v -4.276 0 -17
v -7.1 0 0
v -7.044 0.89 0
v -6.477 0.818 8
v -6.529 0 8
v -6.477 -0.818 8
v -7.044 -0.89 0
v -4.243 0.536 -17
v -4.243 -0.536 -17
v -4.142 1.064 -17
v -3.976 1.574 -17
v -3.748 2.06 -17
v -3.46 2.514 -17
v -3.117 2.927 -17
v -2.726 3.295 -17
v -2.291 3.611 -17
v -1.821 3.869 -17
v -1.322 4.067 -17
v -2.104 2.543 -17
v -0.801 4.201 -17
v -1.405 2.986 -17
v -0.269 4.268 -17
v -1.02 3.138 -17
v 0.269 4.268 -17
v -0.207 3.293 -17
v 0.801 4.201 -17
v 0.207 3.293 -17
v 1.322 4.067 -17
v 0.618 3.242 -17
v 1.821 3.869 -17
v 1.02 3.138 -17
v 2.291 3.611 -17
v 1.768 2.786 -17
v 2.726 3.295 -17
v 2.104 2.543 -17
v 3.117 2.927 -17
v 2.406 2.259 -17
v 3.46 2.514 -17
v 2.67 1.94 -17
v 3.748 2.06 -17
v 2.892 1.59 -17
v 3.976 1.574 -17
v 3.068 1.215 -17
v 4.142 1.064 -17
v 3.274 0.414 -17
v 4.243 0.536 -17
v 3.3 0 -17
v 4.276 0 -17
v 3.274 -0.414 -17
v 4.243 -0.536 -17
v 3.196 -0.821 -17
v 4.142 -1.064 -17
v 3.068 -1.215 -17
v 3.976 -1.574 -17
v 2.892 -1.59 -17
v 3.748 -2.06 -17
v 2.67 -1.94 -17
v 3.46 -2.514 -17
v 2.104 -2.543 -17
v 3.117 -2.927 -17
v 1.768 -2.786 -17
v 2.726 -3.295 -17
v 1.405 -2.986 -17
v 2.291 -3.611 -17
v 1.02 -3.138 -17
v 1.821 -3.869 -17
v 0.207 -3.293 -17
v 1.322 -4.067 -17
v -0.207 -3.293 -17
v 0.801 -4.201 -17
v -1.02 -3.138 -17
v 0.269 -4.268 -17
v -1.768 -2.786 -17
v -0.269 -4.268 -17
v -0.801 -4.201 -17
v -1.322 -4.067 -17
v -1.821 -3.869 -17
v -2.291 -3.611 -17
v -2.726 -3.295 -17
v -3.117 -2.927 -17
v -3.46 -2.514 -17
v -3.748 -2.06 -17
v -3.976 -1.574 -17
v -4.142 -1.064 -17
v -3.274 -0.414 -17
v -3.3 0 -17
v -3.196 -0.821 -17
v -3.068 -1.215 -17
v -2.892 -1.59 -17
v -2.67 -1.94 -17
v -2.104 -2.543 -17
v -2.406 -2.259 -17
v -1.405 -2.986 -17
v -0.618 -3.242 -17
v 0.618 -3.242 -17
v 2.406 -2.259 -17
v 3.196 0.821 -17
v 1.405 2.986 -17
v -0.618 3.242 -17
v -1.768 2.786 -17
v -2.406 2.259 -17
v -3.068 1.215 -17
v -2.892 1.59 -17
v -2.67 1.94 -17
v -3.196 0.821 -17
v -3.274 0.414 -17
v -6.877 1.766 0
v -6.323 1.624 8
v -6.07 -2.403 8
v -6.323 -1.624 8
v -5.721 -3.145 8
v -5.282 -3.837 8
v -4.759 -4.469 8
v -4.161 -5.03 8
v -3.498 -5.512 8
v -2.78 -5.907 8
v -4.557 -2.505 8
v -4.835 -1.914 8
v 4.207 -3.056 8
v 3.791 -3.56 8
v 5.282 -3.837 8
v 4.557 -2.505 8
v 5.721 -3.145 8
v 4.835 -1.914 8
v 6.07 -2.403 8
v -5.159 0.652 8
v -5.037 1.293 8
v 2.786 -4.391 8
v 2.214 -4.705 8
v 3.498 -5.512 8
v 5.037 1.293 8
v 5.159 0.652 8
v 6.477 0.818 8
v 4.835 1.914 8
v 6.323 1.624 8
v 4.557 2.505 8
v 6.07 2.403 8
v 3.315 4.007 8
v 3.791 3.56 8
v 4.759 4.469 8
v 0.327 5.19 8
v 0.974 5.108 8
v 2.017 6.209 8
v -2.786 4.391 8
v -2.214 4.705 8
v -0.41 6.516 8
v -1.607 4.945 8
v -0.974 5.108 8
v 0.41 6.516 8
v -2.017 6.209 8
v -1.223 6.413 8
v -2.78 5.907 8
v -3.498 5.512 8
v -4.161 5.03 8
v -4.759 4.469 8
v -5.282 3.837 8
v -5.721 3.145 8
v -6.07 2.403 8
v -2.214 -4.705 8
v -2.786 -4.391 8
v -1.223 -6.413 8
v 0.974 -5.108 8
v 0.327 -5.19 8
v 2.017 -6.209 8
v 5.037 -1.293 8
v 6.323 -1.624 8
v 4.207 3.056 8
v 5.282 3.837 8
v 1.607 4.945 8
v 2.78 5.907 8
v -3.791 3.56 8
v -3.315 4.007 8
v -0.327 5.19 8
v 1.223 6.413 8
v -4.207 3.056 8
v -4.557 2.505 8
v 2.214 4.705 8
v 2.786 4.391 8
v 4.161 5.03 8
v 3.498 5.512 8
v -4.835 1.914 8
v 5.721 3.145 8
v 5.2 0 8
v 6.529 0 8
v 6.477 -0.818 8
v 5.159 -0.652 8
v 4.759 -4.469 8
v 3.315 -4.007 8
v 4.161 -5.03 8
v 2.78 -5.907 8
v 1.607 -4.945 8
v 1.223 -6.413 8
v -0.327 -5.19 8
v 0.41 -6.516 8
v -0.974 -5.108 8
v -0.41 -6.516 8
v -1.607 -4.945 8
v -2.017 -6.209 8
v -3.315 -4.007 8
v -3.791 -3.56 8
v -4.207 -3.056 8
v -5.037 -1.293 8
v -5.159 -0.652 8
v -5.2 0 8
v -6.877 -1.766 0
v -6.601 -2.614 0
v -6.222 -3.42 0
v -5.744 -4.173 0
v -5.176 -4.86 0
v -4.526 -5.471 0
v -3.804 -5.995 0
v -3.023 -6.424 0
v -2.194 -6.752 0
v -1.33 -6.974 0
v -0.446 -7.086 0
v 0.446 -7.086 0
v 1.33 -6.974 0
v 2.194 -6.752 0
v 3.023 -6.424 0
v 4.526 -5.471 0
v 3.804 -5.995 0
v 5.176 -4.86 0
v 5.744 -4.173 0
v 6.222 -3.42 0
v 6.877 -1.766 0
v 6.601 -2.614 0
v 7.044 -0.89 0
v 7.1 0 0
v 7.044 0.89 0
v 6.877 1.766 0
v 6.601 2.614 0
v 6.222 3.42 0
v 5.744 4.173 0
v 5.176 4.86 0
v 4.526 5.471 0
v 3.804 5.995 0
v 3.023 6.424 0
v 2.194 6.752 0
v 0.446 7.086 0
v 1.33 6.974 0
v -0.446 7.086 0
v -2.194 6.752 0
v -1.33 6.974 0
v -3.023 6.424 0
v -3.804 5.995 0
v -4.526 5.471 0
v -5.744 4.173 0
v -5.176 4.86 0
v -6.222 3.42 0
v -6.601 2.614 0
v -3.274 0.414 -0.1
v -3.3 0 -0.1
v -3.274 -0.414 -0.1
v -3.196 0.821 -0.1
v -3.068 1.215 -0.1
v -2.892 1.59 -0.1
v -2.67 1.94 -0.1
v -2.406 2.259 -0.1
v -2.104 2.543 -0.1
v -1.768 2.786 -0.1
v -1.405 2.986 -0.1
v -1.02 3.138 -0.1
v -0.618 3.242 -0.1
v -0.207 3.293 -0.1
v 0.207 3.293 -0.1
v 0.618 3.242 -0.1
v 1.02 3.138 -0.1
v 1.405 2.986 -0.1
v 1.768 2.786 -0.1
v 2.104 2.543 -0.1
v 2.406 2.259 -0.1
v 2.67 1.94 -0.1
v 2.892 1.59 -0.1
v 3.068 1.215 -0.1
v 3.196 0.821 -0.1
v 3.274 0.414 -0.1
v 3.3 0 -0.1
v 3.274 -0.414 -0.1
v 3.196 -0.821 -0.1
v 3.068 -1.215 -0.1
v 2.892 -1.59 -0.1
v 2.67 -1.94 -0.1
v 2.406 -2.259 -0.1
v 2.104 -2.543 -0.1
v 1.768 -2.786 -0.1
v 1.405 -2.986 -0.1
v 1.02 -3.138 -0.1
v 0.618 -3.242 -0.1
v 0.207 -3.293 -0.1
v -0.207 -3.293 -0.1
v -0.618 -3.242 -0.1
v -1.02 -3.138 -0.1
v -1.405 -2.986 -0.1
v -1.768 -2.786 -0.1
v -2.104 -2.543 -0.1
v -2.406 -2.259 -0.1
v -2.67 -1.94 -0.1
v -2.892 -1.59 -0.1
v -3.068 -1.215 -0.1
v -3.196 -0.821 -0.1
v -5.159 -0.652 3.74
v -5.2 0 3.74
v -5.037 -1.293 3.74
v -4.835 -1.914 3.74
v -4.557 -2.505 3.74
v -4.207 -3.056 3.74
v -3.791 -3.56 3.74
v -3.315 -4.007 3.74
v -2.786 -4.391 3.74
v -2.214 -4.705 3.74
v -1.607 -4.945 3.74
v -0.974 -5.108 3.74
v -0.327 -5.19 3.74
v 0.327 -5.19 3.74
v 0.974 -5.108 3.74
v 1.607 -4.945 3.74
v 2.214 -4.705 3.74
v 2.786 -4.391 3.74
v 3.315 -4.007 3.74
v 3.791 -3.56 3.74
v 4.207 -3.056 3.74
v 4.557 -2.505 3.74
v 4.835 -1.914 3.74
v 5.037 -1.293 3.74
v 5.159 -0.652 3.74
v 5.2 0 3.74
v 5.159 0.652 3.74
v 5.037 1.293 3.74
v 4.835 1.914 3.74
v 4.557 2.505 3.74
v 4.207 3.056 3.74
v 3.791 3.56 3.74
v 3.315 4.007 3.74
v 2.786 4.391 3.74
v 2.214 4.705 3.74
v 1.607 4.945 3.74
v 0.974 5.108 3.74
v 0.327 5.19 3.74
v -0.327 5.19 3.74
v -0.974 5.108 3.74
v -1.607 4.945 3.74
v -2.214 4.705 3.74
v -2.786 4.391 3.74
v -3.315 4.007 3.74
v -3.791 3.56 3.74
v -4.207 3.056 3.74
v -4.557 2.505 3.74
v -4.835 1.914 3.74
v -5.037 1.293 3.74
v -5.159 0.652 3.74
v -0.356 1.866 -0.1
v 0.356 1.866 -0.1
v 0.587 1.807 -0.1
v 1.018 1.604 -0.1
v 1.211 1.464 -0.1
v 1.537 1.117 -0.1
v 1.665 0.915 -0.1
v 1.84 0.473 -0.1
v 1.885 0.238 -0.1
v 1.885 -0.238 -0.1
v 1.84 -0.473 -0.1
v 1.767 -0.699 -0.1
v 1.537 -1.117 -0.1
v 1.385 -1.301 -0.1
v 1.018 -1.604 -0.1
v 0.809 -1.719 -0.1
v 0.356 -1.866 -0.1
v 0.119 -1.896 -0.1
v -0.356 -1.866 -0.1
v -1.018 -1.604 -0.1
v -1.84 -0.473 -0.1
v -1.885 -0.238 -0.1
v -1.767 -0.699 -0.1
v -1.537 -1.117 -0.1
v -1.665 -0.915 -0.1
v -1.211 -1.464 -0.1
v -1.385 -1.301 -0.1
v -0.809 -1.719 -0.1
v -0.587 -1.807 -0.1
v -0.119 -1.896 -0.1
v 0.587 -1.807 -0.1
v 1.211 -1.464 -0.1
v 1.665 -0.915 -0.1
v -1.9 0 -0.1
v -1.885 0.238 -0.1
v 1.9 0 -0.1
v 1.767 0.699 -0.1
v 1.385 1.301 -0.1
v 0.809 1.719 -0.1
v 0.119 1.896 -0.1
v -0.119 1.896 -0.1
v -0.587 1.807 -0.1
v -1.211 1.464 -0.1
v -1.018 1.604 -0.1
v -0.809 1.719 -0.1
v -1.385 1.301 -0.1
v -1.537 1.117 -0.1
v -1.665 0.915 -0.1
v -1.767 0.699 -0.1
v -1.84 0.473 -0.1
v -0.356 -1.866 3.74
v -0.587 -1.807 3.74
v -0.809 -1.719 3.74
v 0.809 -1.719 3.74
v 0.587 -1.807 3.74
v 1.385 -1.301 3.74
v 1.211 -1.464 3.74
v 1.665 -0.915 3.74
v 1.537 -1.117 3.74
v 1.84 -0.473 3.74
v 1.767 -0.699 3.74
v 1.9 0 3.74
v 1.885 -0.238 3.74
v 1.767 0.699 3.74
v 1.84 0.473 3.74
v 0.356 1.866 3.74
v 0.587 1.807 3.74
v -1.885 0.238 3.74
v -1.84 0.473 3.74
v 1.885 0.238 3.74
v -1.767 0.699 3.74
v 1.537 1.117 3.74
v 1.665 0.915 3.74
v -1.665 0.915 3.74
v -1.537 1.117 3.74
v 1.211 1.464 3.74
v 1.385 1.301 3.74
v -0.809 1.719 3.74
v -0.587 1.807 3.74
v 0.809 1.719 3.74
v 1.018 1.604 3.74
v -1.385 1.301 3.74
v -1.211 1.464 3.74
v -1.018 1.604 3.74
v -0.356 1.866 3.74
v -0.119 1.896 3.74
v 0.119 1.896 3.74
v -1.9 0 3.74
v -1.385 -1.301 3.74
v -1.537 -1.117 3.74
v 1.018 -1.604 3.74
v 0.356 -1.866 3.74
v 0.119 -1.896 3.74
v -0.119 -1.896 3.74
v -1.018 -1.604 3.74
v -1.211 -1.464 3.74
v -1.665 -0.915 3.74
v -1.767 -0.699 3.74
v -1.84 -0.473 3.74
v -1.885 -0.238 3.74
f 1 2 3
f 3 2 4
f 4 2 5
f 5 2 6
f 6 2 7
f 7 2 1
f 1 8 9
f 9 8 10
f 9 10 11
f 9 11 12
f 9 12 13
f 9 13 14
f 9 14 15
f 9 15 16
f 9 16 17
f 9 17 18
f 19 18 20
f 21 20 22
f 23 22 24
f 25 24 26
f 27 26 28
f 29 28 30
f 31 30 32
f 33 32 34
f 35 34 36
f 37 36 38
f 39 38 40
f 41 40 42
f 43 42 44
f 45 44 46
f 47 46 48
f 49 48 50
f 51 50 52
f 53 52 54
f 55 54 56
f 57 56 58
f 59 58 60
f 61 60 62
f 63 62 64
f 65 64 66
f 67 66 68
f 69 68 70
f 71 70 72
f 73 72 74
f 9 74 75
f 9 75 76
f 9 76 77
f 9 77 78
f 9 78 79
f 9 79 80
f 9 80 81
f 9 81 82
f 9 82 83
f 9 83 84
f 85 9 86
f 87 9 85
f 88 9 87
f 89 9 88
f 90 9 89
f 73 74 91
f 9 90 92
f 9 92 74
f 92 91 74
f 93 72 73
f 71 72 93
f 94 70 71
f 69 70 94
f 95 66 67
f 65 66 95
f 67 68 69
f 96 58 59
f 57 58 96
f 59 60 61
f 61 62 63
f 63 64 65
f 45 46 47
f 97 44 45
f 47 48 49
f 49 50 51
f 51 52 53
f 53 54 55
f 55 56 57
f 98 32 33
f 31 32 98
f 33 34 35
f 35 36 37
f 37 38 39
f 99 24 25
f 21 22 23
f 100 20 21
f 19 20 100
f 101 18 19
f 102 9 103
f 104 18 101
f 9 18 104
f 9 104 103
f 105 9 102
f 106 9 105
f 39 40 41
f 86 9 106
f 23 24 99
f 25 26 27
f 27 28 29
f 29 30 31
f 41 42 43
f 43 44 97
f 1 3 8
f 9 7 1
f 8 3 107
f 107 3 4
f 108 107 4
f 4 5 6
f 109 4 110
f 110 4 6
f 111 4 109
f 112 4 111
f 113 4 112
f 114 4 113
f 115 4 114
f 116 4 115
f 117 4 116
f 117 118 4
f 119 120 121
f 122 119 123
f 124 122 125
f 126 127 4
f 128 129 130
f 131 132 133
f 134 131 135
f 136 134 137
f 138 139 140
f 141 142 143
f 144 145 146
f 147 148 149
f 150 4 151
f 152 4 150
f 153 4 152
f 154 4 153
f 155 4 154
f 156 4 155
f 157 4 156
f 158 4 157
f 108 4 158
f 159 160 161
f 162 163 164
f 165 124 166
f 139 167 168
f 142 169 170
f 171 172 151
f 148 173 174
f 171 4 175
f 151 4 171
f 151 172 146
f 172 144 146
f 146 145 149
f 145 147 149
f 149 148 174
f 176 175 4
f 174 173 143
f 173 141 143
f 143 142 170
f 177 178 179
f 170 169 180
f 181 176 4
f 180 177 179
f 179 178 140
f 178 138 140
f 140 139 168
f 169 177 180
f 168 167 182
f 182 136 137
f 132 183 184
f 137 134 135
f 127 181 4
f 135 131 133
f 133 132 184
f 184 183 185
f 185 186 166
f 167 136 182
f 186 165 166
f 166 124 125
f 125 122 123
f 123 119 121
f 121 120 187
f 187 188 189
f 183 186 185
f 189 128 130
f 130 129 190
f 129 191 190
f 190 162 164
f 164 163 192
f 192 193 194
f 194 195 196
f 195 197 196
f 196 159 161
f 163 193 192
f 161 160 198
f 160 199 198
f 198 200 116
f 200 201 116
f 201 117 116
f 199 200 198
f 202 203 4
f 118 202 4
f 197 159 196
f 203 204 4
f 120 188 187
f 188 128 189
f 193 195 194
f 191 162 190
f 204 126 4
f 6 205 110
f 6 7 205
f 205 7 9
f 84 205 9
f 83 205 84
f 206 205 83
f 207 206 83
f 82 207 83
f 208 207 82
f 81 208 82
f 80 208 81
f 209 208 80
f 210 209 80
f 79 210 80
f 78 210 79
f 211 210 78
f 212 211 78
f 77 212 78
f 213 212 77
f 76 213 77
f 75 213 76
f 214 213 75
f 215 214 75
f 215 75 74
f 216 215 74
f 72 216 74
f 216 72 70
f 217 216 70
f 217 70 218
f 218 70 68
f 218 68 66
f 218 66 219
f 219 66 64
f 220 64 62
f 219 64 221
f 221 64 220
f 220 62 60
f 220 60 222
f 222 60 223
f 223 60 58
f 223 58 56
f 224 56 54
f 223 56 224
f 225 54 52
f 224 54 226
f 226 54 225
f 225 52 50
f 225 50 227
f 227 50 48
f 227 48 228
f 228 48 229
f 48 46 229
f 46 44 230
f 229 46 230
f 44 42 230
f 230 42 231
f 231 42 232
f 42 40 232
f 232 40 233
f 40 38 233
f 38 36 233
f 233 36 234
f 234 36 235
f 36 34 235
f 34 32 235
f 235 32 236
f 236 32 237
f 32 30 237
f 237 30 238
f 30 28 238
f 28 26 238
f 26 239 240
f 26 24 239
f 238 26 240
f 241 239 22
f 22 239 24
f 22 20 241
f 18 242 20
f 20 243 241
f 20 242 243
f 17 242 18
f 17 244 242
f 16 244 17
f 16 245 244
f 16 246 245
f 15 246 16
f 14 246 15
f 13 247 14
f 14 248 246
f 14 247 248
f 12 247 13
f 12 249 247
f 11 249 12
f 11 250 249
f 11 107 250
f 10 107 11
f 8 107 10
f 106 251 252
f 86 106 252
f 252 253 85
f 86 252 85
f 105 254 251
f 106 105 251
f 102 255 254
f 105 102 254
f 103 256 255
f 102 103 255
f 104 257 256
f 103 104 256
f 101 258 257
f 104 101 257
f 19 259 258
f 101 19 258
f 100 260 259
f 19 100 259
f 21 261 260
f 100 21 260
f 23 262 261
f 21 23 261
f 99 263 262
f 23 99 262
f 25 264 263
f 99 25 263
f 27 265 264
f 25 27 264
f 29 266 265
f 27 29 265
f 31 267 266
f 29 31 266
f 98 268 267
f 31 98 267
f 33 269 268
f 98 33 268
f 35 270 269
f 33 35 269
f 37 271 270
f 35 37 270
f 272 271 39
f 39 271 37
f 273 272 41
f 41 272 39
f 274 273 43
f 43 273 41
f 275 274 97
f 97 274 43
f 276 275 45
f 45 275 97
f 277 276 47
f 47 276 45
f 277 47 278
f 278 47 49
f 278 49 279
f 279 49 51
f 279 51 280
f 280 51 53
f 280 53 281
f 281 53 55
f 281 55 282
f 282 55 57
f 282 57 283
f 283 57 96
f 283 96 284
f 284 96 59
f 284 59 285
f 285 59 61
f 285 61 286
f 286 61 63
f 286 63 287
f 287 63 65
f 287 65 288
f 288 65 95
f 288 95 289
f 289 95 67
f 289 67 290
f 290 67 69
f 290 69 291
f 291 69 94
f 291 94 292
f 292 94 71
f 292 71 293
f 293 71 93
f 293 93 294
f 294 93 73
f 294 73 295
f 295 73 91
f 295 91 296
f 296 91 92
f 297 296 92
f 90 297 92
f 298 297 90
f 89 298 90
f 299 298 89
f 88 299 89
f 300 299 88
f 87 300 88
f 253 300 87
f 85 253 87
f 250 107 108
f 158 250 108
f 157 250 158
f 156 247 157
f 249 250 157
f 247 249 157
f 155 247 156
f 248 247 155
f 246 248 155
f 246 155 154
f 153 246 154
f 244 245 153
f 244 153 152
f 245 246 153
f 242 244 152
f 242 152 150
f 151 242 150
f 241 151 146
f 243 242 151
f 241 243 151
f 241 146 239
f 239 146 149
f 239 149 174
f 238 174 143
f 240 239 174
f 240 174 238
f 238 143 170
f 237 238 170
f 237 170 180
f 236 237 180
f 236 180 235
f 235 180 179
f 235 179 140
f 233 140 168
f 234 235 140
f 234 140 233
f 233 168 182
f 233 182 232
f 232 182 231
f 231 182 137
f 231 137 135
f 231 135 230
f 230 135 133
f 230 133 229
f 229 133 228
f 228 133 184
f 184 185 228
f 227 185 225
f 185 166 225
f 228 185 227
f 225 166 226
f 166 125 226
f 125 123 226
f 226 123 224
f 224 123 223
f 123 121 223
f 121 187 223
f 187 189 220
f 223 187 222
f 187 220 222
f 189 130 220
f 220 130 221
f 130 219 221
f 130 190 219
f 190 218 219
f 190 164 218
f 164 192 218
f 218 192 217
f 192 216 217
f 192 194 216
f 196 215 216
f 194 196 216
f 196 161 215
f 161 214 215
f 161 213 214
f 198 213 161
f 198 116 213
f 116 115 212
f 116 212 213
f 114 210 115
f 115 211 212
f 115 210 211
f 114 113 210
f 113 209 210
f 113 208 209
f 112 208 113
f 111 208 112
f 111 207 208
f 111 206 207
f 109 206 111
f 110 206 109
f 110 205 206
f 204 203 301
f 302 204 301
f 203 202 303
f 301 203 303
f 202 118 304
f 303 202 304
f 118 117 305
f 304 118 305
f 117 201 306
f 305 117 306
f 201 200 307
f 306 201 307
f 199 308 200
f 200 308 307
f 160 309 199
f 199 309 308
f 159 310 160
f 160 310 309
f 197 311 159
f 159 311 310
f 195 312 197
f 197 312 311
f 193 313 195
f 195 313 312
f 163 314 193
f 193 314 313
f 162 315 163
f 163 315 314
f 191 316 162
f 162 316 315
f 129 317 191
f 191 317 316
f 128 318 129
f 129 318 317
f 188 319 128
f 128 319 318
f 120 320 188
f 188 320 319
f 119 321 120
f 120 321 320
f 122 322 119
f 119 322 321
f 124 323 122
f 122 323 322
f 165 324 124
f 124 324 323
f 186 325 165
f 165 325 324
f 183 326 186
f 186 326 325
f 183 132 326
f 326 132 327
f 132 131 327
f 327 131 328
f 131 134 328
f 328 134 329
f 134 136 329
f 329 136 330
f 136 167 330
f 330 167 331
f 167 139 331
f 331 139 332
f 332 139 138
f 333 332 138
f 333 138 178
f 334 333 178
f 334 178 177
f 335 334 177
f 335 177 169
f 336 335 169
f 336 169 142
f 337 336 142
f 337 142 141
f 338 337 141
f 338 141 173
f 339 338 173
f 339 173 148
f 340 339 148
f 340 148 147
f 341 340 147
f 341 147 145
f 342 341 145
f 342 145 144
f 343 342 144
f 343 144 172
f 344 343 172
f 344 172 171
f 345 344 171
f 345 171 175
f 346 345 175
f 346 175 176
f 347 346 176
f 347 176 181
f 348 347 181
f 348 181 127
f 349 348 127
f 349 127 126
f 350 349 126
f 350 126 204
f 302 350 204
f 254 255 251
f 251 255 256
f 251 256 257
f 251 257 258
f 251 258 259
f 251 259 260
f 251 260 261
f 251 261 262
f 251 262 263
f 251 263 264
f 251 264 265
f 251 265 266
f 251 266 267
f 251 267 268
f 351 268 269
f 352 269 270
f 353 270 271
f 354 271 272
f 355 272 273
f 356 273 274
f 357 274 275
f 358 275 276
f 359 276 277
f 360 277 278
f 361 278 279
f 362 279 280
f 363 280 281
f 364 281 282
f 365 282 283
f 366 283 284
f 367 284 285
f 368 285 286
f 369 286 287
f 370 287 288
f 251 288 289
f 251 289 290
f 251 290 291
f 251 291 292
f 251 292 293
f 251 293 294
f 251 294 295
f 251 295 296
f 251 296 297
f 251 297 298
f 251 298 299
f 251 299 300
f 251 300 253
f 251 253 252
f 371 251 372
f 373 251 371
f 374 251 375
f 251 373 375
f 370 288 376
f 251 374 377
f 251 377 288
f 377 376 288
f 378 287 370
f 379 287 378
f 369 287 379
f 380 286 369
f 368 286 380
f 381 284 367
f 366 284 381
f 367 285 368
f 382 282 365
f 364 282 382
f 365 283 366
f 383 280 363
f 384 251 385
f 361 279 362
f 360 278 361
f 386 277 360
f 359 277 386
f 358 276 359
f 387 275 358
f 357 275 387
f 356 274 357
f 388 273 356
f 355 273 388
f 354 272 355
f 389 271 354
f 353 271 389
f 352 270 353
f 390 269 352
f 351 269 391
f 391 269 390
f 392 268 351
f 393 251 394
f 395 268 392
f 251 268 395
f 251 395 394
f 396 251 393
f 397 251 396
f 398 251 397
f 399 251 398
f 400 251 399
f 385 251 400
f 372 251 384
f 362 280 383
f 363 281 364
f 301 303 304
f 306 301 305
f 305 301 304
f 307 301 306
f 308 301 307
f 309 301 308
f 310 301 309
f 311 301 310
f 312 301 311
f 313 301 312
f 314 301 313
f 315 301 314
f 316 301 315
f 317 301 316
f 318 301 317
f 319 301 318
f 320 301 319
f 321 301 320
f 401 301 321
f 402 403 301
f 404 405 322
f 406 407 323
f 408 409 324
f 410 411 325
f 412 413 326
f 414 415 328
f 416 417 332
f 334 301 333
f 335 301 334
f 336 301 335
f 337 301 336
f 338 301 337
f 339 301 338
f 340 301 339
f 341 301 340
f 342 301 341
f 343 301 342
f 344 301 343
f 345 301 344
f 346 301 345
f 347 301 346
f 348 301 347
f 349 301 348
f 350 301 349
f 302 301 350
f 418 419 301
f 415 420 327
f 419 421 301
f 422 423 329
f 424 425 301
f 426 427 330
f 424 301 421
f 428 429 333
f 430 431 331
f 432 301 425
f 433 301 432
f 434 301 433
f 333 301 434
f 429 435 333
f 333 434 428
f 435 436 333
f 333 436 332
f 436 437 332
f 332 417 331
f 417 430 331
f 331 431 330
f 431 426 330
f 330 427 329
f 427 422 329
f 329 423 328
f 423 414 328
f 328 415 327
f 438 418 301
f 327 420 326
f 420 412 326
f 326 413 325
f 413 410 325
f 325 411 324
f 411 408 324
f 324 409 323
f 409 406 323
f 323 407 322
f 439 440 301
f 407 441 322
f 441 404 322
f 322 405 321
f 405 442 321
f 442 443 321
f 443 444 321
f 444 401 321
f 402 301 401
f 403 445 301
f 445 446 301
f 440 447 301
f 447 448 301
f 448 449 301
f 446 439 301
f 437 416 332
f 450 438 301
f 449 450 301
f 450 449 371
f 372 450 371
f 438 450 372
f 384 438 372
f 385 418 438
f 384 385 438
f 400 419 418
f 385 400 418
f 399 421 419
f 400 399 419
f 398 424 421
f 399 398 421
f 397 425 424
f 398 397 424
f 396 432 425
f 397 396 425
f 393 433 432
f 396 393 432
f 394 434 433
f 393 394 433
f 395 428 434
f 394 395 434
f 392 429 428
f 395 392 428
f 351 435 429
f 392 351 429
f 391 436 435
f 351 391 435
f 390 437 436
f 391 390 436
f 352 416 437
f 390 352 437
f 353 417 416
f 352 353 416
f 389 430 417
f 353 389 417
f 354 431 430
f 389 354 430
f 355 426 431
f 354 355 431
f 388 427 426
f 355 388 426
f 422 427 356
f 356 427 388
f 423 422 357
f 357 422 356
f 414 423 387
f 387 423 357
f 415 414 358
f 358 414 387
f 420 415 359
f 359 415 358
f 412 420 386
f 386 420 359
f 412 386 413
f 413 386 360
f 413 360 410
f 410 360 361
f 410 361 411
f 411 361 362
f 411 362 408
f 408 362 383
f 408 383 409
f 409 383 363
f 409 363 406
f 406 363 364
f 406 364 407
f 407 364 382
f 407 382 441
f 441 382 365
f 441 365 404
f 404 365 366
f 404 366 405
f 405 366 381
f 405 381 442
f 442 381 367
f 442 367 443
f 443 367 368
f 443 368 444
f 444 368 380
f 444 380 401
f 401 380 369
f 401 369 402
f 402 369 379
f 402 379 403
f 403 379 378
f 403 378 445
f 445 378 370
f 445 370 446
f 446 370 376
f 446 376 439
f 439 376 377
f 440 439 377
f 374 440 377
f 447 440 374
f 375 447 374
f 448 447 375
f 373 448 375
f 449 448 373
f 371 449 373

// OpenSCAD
CarbonOD = 6.0+0.20;
MagneticOD_big = 12.0 +0.2;
MagneticThick_big = 4.0+0.3;
length1_big = 8.0;
length2_big = 17.0;
wallThickness = 2;
err = 0.1;
$fn = 50;
m4Radius = 2.0;


MagneticOD_sml = 10 +0.2;
MagneticThick_sml = 2.76+1.5;
length1_sml = 8.0; //was 10.0
length2_sml = 17.0; // was 17.0


module connector_big(){
    difference(){
	hull(){
	    cylinder(h=length1_big, r1= MagneticOD_big/2 + wallThickness/1.3, r2 =  MagneticOD_big/2 + wallThickness/2);
	    translate([0,0,-length2_big]) cylinder(h=1, r= CarbonOD/2 + wallThickness/1.7);
	}
	translate([0,0,length1_big-MagneticThick_big]) cylinder(h=MagneticThick_big+err, r = MagneticOD_big/2 + err);
	translate([0,0,-length2_big-err])cylinder(h=length2_big + length1_big, r= m4Radius + err);
	translate([0,0, -length2_big-err-8]) cylinder(h=length2_big + length1_big, r=CarbonOD/2 + err);
    }
}


module connector_sml(){
    difference(){
	hull(){
	    cylinder(h=length1_sml, r1= MagneticOD_sml/2 + wallThickness, r2 =  MagneticOD_sml/2 + wallThickness/1.4); //remove r2 if you want to change to old style~
	    translate([0,0,-length2_sml]) cylinder(h=0.1, r= CarbonOD/2 + wallThickness/1.7);
	}
	translate([0,0,length1_sml-MagneticThick_sml]) cylinder(h=MagneticThick_sml+err, r = MagneticOD_sml/2 + err);
	translate([0,0,-length2_sml-err])cylinder(h=length2_big + length1_big, r= m4Radius-err);
	translate([0,0, -length2_sml-err-8]) cylinder(h=length2_sml + length1_sml, r=CarbonOD/2 + err*2);
    }
}

//translate([0,20,0 ])connector_big();

connector_sml();
